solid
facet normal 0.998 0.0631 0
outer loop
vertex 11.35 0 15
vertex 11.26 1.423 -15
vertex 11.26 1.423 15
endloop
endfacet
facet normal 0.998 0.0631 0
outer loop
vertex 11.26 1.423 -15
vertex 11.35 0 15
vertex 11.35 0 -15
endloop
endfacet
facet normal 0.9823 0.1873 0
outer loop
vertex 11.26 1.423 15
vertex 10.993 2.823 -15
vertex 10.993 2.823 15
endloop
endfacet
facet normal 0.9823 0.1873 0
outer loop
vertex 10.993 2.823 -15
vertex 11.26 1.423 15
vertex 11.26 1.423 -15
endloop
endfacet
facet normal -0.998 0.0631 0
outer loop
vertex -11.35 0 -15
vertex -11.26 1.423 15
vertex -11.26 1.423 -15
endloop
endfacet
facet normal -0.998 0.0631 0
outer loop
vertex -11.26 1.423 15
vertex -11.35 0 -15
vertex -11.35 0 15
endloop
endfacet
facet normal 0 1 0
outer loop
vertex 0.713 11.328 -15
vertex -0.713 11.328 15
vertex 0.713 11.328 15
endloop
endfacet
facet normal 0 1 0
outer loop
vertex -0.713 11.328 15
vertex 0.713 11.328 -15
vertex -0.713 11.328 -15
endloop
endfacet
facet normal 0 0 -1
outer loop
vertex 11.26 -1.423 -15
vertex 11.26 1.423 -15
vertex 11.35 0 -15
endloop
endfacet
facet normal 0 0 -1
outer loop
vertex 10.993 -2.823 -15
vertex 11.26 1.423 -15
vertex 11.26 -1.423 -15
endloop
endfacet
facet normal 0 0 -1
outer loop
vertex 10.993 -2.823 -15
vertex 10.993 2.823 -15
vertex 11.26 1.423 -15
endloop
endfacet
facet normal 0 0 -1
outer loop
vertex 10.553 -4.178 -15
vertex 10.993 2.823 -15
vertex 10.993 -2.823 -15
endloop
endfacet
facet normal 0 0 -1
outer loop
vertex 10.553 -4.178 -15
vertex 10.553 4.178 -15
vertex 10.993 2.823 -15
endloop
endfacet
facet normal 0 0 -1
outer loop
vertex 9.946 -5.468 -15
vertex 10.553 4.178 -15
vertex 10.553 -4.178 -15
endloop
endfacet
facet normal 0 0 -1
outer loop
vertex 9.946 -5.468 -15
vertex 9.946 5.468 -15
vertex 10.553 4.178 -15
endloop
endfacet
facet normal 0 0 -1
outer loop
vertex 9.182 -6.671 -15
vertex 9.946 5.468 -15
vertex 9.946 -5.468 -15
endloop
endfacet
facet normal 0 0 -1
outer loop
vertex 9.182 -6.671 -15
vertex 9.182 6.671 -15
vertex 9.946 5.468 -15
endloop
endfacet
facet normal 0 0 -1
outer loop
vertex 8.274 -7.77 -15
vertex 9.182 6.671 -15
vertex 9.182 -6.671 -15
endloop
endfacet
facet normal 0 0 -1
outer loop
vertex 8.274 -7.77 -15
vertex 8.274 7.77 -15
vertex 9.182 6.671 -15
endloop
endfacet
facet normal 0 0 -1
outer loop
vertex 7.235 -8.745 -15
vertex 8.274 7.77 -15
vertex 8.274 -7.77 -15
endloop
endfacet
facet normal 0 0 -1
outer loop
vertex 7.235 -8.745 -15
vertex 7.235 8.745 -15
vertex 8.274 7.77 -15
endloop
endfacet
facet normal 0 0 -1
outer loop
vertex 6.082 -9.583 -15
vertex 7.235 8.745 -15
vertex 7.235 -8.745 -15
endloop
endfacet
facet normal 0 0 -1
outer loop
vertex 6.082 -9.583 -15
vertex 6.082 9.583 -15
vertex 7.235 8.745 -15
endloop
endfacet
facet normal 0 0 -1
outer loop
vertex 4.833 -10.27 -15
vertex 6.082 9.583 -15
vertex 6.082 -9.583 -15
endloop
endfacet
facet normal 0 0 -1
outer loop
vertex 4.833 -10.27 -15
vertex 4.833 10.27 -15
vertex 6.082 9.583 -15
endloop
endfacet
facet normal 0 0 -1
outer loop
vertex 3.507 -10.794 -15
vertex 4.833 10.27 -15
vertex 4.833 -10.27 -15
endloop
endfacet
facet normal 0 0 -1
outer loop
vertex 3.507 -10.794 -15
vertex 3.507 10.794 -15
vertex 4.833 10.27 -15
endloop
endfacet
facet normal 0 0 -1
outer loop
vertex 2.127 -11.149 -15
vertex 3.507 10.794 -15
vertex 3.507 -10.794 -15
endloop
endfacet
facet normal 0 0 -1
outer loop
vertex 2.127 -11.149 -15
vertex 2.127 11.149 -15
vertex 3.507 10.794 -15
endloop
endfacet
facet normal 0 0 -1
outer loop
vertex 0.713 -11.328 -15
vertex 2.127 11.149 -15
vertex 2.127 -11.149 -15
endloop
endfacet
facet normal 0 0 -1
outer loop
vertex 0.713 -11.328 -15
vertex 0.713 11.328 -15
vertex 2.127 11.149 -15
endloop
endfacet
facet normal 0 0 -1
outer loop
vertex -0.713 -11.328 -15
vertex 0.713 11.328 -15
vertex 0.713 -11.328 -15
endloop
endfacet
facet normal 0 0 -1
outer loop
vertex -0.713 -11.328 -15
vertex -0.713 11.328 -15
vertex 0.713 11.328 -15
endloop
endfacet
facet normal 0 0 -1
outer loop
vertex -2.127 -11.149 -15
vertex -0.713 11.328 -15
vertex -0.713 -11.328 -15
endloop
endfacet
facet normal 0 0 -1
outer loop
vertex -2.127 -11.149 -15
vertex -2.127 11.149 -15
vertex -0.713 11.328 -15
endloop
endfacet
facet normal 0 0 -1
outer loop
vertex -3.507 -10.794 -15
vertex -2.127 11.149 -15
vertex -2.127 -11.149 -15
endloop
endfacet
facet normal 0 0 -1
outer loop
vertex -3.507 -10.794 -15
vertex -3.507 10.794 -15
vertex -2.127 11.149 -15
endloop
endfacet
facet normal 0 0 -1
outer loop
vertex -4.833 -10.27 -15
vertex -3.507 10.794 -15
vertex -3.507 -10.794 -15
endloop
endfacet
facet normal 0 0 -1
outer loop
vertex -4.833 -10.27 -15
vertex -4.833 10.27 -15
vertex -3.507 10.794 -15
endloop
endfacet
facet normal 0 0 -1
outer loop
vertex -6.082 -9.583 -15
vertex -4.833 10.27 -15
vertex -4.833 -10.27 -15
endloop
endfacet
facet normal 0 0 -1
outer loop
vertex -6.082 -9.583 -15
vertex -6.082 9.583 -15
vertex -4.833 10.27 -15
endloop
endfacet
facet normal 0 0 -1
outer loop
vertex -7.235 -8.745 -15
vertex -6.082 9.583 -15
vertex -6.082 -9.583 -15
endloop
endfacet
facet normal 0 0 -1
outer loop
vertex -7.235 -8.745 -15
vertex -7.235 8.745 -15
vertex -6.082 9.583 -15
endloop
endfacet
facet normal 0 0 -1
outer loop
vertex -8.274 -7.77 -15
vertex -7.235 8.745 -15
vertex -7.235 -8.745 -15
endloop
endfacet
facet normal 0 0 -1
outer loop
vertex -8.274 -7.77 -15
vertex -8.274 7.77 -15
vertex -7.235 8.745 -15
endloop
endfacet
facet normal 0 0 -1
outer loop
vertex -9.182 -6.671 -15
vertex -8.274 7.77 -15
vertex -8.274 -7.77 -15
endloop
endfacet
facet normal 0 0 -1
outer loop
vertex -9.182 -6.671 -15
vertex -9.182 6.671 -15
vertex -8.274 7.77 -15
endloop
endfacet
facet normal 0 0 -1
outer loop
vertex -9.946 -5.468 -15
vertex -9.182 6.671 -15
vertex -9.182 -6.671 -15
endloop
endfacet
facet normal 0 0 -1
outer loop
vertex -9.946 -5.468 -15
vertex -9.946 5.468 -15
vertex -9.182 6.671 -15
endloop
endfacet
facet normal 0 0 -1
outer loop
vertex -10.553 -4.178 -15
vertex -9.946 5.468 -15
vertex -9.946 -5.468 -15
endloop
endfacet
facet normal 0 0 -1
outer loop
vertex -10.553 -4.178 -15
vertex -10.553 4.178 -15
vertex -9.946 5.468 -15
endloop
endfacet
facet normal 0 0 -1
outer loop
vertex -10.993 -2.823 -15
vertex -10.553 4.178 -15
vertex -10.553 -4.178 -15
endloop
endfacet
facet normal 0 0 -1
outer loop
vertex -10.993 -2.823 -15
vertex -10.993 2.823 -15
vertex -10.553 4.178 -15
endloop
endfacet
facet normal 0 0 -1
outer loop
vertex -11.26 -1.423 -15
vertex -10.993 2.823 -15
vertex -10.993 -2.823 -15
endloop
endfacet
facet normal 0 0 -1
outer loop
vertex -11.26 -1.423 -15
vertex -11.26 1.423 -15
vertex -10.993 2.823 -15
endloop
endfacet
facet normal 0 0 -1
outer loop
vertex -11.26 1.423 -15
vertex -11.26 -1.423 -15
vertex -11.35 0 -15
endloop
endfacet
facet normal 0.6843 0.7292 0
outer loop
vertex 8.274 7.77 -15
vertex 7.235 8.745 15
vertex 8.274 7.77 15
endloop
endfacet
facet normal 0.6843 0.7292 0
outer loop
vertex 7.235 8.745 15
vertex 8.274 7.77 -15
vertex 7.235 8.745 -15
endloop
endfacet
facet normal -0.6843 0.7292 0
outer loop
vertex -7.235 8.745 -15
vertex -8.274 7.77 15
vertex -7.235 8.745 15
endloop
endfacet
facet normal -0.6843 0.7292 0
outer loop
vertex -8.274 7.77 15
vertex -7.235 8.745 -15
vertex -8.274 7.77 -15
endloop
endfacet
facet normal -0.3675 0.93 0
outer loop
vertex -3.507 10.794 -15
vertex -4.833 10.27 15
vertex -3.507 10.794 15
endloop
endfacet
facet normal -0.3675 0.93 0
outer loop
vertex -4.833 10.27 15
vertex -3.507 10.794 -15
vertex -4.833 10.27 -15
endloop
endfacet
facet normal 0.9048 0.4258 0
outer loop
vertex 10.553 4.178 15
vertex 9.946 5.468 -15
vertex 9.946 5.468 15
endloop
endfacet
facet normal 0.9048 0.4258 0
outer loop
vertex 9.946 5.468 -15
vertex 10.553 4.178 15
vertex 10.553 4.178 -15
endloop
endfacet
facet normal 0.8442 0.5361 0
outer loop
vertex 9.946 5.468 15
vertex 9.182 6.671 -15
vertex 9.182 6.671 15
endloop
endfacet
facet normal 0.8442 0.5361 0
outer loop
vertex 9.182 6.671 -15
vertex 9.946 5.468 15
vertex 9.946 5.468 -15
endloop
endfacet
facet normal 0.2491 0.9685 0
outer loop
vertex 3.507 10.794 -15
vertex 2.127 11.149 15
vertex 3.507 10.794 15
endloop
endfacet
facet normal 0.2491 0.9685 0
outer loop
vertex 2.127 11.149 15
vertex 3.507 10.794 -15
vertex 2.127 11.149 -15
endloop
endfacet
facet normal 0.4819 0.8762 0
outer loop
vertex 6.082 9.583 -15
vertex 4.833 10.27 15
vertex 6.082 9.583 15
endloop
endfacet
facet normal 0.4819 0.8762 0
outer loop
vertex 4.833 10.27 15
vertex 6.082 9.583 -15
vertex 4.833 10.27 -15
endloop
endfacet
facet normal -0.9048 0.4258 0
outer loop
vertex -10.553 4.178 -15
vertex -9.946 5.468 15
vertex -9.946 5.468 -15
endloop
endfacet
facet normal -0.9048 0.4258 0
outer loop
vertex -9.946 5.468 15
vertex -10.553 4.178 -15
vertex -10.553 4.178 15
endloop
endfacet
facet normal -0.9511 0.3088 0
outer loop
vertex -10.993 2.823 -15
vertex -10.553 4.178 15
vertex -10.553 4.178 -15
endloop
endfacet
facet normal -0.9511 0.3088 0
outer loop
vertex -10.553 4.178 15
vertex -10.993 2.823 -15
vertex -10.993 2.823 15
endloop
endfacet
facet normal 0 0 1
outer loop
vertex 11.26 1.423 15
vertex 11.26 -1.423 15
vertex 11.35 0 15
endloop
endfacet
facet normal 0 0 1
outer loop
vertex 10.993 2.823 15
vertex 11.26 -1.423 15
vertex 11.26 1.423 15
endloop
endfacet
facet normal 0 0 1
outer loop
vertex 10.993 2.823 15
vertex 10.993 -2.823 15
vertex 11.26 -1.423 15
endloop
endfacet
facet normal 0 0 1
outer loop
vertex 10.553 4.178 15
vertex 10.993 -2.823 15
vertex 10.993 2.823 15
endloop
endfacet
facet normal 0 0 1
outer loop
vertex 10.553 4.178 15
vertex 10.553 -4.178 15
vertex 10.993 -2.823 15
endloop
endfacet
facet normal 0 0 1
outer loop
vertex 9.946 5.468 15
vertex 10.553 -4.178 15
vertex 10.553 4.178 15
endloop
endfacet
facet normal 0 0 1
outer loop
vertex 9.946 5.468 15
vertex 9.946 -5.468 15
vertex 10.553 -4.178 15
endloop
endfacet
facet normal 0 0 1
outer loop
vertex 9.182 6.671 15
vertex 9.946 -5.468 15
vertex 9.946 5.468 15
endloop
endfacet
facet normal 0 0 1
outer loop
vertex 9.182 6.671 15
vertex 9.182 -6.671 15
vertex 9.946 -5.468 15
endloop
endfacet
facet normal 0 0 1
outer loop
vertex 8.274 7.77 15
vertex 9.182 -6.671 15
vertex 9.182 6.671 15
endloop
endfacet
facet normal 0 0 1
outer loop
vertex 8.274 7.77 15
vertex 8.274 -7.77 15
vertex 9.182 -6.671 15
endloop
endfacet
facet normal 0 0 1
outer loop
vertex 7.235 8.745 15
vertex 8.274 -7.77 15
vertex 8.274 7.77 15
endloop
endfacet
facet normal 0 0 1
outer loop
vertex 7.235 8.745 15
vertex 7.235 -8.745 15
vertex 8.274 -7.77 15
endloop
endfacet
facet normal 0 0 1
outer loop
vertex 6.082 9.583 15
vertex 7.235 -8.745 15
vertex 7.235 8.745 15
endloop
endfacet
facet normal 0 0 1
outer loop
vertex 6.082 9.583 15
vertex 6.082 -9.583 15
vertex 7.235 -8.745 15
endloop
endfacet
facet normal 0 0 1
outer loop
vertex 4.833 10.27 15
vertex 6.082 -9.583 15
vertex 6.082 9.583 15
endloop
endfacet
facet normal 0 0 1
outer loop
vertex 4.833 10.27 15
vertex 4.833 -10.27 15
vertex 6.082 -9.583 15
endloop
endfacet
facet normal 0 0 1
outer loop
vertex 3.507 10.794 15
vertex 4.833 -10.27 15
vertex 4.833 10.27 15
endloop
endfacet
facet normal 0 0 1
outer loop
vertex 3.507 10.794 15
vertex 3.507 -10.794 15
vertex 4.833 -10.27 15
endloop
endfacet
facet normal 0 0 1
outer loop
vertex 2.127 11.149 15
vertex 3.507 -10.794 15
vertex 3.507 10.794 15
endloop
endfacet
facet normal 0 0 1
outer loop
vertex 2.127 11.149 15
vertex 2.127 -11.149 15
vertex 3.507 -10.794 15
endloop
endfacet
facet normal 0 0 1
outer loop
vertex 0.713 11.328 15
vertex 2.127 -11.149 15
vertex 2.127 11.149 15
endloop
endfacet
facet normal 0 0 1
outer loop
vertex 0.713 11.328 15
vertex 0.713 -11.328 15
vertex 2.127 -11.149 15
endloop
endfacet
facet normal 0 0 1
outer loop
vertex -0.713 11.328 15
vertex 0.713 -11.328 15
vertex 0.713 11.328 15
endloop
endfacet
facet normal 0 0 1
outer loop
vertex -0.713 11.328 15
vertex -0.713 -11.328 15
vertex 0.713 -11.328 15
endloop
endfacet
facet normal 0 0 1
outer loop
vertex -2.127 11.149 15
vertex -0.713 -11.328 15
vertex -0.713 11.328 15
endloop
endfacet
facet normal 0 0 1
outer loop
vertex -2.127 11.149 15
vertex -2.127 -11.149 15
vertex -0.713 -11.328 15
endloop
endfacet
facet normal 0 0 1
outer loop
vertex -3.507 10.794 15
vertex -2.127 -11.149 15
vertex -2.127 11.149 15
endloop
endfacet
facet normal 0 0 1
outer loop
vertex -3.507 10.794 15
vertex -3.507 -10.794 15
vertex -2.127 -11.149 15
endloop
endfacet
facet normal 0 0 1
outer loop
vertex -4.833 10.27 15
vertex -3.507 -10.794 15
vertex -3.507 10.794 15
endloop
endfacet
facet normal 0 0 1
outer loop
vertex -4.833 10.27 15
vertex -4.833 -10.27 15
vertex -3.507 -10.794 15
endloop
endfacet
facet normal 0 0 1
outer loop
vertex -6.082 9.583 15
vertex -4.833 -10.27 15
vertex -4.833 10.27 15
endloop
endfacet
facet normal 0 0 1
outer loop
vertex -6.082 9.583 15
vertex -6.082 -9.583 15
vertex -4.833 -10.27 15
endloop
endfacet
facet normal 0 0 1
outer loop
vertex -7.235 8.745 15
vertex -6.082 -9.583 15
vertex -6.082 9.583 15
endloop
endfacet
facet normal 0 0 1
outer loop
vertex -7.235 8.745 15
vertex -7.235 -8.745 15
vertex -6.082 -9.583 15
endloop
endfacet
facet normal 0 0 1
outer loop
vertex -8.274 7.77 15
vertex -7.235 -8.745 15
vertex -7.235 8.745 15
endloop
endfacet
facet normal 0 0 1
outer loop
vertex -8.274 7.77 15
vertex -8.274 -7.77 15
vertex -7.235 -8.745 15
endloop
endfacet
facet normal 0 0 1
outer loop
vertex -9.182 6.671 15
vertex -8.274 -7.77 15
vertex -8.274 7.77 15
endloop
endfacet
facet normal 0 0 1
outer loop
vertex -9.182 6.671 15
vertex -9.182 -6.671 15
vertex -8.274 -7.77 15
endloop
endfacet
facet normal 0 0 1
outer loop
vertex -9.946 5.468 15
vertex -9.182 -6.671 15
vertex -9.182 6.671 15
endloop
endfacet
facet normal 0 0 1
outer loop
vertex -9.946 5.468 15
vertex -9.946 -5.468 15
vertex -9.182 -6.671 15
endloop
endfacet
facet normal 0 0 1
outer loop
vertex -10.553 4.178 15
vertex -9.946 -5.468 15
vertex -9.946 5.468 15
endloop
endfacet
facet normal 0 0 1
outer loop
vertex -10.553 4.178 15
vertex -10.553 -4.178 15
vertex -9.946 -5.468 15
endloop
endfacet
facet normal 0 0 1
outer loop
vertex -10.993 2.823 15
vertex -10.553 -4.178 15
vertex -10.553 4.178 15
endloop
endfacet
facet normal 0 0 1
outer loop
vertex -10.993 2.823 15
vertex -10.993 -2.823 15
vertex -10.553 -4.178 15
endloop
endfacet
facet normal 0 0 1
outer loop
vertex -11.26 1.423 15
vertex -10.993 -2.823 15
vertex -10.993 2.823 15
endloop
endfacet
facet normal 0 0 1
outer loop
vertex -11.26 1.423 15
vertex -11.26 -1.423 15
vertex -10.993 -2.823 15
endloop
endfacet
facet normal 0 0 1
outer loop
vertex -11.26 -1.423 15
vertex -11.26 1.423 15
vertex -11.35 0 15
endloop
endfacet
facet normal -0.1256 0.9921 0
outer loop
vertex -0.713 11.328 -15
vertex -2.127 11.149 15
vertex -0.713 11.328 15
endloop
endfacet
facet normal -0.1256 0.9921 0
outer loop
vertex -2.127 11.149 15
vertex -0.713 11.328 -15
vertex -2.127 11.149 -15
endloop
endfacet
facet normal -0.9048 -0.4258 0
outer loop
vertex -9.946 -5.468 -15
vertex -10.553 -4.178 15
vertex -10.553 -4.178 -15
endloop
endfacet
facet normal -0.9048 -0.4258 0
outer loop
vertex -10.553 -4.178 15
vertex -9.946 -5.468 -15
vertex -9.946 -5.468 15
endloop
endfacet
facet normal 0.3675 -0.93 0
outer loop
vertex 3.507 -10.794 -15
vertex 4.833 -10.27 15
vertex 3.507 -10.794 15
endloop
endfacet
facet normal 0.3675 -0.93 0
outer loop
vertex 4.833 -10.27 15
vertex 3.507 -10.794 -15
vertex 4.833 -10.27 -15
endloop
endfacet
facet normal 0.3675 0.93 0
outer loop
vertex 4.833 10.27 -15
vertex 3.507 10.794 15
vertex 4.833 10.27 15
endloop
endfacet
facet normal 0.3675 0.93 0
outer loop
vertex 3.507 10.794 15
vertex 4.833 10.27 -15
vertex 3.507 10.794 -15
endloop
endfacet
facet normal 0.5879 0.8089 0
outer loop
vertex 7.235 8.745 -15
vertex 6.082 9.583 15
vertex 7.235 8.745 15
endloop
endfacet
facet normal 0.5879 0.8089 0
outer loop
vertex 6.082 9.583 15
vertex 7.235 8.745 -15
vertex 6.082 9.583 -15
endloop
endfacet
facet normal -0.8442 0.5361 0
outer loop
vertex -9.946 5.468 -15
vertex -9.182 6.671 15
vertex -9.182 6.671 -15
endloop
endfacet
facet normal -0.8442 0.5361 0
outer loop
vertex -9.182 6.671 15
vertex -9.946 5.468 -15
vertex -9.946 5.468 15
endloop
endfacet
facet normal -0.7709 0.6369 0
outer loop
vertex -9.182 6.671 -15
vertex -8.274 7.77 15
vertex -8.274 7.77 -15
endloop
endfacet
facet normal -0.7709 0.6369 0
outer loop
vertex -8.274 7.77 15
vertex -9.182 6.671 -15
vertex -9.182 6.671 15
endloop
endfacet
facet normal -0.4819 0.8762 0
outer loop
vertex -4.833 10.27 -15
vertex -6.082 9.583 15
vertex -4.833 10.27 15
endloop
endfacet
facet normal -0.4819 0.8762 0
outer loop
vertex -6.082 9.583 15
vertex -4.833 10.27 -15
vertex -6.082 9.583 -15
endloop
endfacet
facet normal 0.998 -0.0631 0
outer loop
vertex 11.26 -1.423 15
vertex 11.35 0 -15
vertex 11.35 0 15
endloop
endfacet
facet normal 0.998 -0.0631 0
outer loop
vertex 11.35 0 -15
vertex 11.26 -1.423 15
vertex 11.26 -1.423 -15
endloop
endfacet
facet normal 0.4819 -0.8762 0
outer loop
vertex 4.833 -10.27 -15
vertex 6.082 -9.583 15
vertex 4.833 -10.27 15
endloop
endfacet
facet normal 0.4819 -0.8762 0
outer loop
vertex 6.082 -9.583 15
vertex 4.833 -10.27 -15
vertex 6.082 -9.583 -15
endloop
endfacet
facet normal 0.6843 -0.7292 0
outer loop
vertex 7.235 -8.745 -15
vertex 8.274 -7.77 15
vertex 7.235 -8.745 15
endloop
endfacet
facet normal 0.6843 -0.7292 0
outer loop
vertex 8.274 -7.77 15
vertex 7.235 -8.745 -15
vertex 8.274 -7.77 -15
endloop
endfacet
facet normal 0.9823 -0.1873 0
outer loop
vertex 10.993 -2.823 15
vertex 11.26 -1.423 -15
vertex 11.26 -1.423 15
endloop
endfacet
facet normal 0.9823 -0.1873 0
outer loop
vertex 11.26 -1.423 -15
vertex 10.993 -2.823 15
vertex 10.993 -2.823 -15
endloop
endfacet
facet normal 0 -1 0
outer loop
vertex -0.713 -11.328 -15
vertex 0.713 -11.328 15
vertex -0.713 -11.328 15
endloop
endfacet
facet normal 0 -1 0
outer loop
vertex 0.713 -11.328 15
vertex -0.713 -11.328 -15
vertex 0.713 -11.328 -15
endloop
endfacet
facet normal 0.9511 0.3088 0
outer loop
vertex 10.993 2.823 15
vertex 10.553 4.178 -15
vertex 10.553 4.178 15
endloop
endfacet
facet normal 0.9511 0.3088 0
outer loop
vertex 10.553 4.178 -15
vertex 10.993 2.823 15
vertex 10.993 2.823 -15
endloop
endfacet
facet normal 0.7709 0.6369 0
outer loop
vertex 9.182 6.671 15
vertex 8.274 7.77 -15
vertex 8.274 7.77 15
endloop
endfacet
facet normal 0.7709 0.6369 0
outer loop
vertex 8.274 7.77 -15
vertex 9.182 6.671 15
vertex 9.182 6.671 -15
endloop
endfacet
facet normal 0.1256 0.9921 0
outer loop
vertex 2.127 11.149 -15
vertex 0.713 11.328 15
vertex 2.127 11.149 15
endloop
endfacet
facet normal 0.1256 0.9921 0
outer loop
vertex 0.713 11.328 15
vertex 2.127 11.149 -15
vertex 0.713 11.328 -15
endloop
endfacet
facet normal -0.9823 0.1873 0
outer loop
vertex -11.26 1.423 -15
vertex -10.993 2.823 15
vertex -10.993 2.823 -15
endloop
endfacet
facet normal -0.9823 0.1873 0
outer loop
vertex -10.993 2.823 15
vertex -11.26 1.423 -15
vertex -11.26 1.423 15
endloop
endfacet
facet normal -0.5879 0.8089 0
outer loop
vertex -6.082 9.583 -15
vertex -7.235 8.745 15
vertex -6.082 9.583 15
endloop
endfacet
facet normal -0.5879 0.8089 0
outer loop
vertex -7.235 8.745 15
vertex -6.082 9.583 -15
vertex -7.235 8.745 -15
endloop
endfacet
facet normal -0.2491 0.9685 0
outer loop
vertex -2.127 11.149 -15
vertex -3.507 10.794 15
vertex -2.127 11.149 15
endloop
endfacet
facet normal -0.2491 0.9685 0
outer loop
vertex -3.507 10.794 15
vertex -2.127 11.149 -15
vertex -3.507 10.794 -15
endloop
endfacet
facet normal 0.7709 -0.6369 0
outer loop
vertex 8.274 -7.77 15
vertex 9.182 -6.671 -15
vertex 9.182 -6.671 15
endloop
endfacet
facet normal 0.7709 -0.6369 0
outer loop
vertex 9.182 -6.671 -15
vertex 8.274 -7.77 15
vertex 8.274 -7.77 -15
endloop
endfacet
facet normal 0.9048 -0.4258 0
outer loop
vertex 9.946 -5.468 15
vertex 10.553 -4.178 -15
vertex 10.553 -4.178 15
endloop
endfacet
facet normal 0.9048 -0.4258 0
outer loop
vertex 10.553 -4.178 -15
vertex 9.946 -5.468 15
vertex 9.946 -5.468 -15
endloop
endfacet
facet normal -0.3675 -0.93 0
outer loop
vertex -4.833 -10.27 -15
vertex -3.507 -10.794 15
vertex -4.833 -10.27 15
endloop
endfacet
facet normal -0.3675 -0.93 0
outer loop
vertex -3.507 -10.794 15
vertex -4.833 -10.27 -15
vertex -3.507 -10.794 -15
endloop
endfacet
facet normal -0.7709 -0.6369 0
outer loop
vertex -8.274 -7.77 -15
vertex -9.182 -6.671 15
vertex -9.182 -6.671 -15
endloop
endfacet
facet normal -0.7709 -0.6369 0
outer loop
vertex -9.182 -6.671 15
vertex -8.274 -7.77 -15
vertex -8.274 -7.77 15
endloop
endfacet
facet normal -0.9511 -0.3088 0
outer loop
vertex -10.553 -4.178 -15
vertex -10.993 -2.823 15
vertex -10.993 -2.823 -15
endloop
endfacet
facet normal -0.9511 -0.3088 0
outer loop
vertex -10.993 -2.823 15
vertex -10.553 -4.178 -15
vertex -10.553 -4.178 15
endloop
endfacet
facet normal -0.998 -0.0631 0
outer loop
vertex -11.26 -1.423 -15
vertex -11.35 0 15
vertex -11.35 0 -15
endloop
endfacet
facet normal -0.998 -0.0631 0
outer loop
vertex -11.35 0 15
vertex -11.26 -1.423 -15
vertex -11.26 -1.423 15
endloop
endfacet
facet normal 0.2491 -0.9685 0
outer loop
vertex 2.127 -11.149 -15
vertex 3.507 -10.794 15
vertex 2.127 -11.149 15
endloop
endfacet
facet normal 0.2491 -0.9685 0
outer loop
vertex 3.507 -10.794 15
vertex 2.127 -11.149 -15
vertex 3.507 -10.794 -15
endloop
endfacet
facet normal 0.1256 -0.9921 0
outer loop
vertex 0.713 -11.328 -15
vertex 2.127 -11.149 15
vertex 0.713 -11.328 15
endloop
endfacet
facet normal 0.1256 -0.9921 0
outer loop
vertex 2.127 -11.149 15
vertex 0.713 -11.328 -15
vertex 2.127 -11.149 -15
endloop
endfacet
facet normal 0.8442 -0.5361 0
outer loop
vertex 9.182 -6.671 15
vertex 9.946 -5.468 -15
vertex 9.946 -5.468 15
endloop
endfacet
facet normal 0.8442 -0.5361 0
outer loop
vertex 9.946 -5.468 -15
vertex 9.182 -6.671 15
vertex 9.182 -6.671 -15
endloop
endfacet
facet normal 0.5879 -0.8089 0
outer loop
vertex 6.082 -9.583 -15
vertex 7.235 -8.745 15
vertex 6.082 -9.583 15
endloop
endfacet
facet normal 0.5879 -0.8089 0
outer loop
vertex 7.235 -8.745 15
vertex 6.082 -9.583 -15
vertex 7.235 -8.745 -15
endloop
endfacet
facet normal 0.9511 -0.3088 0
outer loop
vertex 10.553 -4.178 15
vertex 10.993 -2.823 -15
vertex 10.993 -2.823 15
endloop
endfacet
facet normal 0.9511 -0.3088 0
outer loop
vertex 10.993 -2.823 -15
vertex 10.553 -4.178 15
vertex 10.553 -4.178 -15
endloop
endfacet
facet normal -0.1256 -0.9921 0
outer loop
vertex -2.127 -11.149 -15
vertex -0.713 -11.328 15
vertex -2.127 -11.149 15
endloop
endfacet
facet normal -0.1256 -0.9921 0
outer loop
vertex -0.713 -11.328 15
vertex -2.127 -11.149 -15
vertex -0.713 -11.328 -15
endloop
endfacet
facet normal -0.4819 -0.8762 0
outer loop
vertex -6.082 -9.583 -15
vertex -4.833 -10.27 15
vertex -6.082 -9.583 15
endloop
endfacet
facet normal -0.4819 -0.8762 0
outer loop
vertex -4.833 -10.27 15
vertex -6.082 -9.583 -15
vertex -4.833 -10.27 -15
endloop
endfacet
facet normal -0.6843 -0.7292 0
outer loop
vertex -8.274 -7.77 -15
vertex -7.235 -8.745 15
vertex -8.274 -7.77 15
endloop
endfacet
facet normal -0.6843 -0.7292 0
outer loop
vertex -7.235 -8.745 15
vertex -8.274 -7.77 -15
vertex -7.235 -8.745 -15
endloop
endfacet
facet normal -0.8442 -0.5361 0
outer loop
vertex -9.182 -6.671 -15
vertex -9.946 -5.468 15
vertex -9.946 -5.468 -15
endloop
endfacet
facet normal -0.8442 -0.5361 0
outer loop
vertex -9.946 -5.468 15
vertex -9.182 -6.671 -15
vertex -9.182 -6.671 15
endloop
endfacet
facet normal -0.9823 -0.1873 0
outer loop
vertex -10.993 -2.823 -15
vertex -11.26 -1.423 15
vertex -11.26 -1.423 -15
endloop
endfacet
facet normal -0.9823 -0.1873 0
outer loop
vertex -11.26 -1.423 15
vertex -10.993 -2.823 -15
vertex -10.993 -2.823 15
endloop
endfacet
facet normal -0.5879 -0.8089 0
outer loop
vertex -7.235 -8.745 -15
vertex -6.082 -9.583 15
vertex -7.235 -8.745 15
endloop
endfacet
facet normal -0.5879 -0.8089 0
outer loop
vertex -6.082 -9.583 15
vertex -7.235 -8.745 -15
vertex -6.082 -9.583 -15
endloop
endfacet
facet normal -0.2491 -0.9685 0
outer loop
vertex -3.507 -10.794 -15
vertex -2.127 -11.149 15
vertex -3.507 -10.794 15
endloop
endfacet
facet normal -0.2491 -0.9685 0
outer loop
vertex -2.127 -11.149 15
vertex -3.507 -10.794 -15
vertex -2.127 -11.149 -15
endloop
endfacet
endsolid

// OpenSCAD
$fn = 50;


difference() {
	union() {
		translate(v = [0, 0, -15.0000000000]) {
			cylinder(h = 30, r = 11.3500000000);
		}
	}
	union() {
		translate(v = [0, 0, -100.0000000000]) {
			cylinder(h = 200, r = 0);
		}
	}
}
